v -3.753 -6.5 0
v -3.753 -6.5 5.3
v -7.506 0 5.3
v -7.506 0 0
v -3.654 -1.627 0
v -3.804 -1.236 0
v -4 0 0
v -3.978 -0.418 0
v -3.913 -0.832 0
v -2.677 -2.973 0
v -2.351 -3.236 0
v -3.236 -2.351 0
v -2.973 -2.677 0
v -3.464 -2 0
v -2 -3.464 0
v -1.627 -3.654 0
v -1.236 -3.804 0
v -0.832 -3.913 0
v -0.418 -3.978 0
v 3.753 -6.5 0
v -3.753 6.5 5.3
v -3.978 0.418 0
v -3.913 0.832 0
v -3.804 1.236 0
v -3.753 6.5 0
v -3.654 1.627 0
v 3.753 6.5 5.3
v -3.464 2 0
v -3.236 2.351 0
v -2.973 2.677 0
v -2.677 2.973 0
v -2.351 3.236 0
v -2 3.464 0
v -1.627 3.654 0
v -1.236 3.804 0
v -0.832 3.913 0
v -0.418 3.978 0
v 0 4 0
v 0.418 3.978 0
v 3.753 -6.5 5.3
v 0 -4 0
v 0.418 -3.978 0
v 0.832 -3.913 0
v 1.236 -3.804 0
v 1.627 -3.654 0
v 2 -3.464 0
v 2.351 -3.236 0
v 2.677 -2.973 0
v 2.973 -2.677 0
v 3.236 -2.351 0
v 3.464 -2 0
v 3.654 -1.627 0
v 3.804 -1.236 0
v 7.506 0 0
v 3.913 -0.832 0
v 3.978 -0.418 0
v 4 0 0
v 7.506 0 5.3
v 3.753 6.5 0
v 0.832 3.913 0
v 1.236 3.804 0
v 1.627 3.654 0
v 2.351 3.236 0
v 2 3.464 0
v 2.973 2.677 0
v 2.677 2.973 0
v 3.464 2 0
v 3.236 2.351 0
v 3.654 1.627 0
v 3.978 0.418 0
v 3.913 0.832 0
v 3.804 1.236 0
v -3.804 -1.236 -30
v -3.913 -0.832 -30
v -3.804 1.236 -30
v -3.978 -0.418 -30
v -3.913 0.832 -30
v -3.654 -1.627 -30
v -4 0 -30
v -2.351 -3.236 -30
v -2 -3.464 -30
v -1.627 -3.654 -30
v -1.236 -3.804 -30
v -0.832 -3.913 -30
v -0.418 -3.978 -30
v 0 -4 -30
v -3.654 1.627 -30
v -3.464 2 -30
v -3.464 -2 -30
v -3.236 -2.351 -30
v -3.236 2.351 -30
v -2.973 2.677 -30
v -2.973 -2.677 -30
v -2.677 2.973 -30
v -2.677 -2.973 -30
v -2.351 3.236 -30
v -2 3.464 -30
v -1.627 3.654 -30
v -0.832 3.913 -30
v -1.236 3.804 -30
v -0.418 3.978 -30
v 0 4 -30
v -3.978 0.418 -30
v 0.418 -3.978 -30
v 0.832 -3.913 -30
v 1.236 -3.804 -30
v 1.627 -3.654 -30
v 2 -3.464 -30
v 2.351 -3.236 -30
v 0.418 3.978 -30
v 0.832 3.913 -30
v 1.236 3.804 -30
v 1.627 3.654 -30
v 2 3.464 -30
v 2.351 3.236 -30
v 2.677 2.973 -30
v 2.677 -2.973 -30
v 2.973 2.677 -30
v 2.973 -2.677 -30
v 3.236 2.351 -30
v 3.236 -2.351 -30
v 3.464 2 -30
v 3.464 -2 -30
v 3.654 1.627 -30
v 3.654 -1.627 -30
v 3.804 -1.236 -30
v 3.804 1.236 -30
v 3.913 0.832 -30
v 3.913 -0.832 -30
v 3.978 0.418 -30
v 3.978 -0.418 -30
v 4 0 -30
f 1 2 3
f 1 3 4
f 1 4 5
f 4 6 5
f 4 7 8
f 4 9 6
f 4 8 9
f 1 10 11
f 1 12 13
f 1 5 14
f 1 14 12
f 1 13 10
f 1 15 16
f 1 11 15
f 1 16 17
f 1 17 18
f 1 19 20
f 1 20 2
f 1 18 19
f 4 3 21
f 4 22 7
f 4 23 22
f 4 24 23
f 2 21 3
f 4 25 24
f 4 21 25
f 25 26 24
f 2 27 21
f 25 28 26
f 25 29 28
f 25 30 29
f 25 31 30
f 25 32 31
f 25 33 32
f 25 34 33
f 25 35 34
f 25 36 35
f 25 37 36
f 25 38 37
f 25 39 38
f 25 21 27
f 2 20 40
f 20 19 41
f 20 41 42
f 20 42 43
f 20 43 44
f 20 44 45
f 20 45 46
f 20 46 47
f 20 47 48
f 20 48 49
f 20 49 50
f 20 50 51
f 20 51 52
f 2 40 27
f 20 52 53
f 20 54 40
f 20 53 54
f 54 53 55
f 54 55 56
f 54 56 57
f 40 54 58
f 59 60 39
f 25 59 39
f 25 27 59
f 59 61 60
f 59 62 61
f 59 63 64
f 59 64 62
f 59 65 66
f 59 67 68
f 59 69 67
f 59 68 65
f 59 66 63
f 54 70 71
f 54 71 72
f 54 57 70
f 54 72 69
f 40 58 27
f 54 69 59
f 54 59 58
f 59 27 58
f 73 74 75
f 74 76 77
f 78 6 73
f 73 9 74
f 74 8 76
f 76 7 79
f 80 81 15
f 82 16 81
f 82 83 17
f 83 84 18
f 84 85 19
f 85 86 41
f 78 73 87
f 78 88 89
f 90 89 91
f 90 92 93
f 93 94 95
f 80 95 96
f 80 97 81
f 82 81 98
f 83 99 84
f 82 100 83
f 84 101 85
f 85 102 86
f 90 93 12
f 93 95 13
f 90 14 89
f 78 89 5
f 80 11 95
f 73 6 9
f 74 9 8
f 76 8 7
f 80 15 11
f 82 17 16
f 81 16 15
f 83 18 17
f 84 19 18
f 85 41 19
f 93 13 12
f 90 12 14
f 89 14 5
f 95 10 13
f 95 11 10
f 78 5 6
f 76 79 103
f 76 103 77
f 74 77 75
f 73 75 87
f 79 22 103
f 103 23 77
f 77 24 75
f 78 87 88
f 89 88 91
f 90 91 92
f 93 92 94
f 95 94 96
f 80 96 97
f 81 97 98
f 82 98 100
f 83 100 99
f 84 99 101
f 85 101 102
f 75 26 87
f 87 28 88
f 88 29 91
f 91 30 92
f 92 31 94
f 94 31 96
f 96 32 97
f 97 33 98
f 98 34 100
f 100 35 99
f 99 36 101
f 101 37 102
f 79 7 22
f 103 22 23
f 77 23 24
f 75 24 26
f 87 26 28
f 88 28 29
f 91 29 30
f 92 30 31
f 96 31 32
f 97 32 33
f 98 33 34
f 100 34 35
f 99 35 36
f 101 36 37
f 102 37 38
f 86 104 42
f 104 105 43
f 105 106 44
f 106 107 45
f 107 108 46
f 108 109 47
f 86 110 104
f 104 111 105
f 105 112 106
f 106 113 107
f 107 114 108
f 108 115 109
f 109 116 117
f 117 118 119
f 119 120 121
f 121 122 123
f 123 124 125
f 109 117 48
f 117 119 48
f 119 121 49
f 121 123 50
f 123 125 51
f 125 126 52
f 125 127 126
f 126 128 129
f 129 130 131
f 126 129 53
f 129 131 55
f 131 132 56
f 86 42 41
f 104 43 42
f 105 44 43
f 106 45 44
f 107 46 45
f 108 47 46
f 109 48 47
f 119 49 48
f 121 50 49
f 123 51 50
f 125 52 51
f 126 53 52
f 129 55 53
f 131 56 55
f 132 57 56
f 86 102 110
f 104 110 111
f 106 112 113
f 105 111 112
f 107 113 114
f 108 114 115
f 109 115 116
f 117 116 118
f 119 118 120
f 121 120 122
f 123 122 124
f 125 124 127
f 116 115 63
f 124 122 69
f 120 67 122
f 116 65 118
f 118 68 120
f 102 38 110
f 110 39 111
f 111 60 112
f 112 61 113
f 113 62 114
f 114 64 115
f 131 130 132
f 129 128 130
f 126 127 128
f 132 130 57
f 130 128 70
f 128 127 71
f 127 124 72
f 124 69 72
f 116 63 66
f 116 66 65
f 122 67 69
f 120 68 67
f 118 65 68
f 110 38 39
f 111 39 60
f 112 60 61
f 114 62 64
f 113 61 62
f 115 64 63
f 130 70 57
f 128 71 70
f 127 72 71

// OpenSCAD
R = 13 / sqrt(3);
head_height = 5.3;
shank_length = 30;
shank_radius = 4;

module hex_head() {
  pts = [
    [ R, 0 ],
    [ R * 0.5, R * 0.8660254037844386 ],
    [ -R * 0.5, R * 0.8660254037844386 ],
    [ -R, 0 ],
    [ -R * 0.5, -R * 0.8660254037844386 ],
    [ R * 0.5, -R * 0.8660254037844386 ]
  ];
  linear_extrude(height = head_height)
    polygon(points = pts);
}

union() {
  // Head: bottom at z = 0, top at z = head_height
  hex_head();
  // Shank: top at z = 0, extends to z = -shank_length
  translate([0, 0, -shank_length])
    cylinder(h = shank_length, r = shank_radius, $fn = 60);
}
